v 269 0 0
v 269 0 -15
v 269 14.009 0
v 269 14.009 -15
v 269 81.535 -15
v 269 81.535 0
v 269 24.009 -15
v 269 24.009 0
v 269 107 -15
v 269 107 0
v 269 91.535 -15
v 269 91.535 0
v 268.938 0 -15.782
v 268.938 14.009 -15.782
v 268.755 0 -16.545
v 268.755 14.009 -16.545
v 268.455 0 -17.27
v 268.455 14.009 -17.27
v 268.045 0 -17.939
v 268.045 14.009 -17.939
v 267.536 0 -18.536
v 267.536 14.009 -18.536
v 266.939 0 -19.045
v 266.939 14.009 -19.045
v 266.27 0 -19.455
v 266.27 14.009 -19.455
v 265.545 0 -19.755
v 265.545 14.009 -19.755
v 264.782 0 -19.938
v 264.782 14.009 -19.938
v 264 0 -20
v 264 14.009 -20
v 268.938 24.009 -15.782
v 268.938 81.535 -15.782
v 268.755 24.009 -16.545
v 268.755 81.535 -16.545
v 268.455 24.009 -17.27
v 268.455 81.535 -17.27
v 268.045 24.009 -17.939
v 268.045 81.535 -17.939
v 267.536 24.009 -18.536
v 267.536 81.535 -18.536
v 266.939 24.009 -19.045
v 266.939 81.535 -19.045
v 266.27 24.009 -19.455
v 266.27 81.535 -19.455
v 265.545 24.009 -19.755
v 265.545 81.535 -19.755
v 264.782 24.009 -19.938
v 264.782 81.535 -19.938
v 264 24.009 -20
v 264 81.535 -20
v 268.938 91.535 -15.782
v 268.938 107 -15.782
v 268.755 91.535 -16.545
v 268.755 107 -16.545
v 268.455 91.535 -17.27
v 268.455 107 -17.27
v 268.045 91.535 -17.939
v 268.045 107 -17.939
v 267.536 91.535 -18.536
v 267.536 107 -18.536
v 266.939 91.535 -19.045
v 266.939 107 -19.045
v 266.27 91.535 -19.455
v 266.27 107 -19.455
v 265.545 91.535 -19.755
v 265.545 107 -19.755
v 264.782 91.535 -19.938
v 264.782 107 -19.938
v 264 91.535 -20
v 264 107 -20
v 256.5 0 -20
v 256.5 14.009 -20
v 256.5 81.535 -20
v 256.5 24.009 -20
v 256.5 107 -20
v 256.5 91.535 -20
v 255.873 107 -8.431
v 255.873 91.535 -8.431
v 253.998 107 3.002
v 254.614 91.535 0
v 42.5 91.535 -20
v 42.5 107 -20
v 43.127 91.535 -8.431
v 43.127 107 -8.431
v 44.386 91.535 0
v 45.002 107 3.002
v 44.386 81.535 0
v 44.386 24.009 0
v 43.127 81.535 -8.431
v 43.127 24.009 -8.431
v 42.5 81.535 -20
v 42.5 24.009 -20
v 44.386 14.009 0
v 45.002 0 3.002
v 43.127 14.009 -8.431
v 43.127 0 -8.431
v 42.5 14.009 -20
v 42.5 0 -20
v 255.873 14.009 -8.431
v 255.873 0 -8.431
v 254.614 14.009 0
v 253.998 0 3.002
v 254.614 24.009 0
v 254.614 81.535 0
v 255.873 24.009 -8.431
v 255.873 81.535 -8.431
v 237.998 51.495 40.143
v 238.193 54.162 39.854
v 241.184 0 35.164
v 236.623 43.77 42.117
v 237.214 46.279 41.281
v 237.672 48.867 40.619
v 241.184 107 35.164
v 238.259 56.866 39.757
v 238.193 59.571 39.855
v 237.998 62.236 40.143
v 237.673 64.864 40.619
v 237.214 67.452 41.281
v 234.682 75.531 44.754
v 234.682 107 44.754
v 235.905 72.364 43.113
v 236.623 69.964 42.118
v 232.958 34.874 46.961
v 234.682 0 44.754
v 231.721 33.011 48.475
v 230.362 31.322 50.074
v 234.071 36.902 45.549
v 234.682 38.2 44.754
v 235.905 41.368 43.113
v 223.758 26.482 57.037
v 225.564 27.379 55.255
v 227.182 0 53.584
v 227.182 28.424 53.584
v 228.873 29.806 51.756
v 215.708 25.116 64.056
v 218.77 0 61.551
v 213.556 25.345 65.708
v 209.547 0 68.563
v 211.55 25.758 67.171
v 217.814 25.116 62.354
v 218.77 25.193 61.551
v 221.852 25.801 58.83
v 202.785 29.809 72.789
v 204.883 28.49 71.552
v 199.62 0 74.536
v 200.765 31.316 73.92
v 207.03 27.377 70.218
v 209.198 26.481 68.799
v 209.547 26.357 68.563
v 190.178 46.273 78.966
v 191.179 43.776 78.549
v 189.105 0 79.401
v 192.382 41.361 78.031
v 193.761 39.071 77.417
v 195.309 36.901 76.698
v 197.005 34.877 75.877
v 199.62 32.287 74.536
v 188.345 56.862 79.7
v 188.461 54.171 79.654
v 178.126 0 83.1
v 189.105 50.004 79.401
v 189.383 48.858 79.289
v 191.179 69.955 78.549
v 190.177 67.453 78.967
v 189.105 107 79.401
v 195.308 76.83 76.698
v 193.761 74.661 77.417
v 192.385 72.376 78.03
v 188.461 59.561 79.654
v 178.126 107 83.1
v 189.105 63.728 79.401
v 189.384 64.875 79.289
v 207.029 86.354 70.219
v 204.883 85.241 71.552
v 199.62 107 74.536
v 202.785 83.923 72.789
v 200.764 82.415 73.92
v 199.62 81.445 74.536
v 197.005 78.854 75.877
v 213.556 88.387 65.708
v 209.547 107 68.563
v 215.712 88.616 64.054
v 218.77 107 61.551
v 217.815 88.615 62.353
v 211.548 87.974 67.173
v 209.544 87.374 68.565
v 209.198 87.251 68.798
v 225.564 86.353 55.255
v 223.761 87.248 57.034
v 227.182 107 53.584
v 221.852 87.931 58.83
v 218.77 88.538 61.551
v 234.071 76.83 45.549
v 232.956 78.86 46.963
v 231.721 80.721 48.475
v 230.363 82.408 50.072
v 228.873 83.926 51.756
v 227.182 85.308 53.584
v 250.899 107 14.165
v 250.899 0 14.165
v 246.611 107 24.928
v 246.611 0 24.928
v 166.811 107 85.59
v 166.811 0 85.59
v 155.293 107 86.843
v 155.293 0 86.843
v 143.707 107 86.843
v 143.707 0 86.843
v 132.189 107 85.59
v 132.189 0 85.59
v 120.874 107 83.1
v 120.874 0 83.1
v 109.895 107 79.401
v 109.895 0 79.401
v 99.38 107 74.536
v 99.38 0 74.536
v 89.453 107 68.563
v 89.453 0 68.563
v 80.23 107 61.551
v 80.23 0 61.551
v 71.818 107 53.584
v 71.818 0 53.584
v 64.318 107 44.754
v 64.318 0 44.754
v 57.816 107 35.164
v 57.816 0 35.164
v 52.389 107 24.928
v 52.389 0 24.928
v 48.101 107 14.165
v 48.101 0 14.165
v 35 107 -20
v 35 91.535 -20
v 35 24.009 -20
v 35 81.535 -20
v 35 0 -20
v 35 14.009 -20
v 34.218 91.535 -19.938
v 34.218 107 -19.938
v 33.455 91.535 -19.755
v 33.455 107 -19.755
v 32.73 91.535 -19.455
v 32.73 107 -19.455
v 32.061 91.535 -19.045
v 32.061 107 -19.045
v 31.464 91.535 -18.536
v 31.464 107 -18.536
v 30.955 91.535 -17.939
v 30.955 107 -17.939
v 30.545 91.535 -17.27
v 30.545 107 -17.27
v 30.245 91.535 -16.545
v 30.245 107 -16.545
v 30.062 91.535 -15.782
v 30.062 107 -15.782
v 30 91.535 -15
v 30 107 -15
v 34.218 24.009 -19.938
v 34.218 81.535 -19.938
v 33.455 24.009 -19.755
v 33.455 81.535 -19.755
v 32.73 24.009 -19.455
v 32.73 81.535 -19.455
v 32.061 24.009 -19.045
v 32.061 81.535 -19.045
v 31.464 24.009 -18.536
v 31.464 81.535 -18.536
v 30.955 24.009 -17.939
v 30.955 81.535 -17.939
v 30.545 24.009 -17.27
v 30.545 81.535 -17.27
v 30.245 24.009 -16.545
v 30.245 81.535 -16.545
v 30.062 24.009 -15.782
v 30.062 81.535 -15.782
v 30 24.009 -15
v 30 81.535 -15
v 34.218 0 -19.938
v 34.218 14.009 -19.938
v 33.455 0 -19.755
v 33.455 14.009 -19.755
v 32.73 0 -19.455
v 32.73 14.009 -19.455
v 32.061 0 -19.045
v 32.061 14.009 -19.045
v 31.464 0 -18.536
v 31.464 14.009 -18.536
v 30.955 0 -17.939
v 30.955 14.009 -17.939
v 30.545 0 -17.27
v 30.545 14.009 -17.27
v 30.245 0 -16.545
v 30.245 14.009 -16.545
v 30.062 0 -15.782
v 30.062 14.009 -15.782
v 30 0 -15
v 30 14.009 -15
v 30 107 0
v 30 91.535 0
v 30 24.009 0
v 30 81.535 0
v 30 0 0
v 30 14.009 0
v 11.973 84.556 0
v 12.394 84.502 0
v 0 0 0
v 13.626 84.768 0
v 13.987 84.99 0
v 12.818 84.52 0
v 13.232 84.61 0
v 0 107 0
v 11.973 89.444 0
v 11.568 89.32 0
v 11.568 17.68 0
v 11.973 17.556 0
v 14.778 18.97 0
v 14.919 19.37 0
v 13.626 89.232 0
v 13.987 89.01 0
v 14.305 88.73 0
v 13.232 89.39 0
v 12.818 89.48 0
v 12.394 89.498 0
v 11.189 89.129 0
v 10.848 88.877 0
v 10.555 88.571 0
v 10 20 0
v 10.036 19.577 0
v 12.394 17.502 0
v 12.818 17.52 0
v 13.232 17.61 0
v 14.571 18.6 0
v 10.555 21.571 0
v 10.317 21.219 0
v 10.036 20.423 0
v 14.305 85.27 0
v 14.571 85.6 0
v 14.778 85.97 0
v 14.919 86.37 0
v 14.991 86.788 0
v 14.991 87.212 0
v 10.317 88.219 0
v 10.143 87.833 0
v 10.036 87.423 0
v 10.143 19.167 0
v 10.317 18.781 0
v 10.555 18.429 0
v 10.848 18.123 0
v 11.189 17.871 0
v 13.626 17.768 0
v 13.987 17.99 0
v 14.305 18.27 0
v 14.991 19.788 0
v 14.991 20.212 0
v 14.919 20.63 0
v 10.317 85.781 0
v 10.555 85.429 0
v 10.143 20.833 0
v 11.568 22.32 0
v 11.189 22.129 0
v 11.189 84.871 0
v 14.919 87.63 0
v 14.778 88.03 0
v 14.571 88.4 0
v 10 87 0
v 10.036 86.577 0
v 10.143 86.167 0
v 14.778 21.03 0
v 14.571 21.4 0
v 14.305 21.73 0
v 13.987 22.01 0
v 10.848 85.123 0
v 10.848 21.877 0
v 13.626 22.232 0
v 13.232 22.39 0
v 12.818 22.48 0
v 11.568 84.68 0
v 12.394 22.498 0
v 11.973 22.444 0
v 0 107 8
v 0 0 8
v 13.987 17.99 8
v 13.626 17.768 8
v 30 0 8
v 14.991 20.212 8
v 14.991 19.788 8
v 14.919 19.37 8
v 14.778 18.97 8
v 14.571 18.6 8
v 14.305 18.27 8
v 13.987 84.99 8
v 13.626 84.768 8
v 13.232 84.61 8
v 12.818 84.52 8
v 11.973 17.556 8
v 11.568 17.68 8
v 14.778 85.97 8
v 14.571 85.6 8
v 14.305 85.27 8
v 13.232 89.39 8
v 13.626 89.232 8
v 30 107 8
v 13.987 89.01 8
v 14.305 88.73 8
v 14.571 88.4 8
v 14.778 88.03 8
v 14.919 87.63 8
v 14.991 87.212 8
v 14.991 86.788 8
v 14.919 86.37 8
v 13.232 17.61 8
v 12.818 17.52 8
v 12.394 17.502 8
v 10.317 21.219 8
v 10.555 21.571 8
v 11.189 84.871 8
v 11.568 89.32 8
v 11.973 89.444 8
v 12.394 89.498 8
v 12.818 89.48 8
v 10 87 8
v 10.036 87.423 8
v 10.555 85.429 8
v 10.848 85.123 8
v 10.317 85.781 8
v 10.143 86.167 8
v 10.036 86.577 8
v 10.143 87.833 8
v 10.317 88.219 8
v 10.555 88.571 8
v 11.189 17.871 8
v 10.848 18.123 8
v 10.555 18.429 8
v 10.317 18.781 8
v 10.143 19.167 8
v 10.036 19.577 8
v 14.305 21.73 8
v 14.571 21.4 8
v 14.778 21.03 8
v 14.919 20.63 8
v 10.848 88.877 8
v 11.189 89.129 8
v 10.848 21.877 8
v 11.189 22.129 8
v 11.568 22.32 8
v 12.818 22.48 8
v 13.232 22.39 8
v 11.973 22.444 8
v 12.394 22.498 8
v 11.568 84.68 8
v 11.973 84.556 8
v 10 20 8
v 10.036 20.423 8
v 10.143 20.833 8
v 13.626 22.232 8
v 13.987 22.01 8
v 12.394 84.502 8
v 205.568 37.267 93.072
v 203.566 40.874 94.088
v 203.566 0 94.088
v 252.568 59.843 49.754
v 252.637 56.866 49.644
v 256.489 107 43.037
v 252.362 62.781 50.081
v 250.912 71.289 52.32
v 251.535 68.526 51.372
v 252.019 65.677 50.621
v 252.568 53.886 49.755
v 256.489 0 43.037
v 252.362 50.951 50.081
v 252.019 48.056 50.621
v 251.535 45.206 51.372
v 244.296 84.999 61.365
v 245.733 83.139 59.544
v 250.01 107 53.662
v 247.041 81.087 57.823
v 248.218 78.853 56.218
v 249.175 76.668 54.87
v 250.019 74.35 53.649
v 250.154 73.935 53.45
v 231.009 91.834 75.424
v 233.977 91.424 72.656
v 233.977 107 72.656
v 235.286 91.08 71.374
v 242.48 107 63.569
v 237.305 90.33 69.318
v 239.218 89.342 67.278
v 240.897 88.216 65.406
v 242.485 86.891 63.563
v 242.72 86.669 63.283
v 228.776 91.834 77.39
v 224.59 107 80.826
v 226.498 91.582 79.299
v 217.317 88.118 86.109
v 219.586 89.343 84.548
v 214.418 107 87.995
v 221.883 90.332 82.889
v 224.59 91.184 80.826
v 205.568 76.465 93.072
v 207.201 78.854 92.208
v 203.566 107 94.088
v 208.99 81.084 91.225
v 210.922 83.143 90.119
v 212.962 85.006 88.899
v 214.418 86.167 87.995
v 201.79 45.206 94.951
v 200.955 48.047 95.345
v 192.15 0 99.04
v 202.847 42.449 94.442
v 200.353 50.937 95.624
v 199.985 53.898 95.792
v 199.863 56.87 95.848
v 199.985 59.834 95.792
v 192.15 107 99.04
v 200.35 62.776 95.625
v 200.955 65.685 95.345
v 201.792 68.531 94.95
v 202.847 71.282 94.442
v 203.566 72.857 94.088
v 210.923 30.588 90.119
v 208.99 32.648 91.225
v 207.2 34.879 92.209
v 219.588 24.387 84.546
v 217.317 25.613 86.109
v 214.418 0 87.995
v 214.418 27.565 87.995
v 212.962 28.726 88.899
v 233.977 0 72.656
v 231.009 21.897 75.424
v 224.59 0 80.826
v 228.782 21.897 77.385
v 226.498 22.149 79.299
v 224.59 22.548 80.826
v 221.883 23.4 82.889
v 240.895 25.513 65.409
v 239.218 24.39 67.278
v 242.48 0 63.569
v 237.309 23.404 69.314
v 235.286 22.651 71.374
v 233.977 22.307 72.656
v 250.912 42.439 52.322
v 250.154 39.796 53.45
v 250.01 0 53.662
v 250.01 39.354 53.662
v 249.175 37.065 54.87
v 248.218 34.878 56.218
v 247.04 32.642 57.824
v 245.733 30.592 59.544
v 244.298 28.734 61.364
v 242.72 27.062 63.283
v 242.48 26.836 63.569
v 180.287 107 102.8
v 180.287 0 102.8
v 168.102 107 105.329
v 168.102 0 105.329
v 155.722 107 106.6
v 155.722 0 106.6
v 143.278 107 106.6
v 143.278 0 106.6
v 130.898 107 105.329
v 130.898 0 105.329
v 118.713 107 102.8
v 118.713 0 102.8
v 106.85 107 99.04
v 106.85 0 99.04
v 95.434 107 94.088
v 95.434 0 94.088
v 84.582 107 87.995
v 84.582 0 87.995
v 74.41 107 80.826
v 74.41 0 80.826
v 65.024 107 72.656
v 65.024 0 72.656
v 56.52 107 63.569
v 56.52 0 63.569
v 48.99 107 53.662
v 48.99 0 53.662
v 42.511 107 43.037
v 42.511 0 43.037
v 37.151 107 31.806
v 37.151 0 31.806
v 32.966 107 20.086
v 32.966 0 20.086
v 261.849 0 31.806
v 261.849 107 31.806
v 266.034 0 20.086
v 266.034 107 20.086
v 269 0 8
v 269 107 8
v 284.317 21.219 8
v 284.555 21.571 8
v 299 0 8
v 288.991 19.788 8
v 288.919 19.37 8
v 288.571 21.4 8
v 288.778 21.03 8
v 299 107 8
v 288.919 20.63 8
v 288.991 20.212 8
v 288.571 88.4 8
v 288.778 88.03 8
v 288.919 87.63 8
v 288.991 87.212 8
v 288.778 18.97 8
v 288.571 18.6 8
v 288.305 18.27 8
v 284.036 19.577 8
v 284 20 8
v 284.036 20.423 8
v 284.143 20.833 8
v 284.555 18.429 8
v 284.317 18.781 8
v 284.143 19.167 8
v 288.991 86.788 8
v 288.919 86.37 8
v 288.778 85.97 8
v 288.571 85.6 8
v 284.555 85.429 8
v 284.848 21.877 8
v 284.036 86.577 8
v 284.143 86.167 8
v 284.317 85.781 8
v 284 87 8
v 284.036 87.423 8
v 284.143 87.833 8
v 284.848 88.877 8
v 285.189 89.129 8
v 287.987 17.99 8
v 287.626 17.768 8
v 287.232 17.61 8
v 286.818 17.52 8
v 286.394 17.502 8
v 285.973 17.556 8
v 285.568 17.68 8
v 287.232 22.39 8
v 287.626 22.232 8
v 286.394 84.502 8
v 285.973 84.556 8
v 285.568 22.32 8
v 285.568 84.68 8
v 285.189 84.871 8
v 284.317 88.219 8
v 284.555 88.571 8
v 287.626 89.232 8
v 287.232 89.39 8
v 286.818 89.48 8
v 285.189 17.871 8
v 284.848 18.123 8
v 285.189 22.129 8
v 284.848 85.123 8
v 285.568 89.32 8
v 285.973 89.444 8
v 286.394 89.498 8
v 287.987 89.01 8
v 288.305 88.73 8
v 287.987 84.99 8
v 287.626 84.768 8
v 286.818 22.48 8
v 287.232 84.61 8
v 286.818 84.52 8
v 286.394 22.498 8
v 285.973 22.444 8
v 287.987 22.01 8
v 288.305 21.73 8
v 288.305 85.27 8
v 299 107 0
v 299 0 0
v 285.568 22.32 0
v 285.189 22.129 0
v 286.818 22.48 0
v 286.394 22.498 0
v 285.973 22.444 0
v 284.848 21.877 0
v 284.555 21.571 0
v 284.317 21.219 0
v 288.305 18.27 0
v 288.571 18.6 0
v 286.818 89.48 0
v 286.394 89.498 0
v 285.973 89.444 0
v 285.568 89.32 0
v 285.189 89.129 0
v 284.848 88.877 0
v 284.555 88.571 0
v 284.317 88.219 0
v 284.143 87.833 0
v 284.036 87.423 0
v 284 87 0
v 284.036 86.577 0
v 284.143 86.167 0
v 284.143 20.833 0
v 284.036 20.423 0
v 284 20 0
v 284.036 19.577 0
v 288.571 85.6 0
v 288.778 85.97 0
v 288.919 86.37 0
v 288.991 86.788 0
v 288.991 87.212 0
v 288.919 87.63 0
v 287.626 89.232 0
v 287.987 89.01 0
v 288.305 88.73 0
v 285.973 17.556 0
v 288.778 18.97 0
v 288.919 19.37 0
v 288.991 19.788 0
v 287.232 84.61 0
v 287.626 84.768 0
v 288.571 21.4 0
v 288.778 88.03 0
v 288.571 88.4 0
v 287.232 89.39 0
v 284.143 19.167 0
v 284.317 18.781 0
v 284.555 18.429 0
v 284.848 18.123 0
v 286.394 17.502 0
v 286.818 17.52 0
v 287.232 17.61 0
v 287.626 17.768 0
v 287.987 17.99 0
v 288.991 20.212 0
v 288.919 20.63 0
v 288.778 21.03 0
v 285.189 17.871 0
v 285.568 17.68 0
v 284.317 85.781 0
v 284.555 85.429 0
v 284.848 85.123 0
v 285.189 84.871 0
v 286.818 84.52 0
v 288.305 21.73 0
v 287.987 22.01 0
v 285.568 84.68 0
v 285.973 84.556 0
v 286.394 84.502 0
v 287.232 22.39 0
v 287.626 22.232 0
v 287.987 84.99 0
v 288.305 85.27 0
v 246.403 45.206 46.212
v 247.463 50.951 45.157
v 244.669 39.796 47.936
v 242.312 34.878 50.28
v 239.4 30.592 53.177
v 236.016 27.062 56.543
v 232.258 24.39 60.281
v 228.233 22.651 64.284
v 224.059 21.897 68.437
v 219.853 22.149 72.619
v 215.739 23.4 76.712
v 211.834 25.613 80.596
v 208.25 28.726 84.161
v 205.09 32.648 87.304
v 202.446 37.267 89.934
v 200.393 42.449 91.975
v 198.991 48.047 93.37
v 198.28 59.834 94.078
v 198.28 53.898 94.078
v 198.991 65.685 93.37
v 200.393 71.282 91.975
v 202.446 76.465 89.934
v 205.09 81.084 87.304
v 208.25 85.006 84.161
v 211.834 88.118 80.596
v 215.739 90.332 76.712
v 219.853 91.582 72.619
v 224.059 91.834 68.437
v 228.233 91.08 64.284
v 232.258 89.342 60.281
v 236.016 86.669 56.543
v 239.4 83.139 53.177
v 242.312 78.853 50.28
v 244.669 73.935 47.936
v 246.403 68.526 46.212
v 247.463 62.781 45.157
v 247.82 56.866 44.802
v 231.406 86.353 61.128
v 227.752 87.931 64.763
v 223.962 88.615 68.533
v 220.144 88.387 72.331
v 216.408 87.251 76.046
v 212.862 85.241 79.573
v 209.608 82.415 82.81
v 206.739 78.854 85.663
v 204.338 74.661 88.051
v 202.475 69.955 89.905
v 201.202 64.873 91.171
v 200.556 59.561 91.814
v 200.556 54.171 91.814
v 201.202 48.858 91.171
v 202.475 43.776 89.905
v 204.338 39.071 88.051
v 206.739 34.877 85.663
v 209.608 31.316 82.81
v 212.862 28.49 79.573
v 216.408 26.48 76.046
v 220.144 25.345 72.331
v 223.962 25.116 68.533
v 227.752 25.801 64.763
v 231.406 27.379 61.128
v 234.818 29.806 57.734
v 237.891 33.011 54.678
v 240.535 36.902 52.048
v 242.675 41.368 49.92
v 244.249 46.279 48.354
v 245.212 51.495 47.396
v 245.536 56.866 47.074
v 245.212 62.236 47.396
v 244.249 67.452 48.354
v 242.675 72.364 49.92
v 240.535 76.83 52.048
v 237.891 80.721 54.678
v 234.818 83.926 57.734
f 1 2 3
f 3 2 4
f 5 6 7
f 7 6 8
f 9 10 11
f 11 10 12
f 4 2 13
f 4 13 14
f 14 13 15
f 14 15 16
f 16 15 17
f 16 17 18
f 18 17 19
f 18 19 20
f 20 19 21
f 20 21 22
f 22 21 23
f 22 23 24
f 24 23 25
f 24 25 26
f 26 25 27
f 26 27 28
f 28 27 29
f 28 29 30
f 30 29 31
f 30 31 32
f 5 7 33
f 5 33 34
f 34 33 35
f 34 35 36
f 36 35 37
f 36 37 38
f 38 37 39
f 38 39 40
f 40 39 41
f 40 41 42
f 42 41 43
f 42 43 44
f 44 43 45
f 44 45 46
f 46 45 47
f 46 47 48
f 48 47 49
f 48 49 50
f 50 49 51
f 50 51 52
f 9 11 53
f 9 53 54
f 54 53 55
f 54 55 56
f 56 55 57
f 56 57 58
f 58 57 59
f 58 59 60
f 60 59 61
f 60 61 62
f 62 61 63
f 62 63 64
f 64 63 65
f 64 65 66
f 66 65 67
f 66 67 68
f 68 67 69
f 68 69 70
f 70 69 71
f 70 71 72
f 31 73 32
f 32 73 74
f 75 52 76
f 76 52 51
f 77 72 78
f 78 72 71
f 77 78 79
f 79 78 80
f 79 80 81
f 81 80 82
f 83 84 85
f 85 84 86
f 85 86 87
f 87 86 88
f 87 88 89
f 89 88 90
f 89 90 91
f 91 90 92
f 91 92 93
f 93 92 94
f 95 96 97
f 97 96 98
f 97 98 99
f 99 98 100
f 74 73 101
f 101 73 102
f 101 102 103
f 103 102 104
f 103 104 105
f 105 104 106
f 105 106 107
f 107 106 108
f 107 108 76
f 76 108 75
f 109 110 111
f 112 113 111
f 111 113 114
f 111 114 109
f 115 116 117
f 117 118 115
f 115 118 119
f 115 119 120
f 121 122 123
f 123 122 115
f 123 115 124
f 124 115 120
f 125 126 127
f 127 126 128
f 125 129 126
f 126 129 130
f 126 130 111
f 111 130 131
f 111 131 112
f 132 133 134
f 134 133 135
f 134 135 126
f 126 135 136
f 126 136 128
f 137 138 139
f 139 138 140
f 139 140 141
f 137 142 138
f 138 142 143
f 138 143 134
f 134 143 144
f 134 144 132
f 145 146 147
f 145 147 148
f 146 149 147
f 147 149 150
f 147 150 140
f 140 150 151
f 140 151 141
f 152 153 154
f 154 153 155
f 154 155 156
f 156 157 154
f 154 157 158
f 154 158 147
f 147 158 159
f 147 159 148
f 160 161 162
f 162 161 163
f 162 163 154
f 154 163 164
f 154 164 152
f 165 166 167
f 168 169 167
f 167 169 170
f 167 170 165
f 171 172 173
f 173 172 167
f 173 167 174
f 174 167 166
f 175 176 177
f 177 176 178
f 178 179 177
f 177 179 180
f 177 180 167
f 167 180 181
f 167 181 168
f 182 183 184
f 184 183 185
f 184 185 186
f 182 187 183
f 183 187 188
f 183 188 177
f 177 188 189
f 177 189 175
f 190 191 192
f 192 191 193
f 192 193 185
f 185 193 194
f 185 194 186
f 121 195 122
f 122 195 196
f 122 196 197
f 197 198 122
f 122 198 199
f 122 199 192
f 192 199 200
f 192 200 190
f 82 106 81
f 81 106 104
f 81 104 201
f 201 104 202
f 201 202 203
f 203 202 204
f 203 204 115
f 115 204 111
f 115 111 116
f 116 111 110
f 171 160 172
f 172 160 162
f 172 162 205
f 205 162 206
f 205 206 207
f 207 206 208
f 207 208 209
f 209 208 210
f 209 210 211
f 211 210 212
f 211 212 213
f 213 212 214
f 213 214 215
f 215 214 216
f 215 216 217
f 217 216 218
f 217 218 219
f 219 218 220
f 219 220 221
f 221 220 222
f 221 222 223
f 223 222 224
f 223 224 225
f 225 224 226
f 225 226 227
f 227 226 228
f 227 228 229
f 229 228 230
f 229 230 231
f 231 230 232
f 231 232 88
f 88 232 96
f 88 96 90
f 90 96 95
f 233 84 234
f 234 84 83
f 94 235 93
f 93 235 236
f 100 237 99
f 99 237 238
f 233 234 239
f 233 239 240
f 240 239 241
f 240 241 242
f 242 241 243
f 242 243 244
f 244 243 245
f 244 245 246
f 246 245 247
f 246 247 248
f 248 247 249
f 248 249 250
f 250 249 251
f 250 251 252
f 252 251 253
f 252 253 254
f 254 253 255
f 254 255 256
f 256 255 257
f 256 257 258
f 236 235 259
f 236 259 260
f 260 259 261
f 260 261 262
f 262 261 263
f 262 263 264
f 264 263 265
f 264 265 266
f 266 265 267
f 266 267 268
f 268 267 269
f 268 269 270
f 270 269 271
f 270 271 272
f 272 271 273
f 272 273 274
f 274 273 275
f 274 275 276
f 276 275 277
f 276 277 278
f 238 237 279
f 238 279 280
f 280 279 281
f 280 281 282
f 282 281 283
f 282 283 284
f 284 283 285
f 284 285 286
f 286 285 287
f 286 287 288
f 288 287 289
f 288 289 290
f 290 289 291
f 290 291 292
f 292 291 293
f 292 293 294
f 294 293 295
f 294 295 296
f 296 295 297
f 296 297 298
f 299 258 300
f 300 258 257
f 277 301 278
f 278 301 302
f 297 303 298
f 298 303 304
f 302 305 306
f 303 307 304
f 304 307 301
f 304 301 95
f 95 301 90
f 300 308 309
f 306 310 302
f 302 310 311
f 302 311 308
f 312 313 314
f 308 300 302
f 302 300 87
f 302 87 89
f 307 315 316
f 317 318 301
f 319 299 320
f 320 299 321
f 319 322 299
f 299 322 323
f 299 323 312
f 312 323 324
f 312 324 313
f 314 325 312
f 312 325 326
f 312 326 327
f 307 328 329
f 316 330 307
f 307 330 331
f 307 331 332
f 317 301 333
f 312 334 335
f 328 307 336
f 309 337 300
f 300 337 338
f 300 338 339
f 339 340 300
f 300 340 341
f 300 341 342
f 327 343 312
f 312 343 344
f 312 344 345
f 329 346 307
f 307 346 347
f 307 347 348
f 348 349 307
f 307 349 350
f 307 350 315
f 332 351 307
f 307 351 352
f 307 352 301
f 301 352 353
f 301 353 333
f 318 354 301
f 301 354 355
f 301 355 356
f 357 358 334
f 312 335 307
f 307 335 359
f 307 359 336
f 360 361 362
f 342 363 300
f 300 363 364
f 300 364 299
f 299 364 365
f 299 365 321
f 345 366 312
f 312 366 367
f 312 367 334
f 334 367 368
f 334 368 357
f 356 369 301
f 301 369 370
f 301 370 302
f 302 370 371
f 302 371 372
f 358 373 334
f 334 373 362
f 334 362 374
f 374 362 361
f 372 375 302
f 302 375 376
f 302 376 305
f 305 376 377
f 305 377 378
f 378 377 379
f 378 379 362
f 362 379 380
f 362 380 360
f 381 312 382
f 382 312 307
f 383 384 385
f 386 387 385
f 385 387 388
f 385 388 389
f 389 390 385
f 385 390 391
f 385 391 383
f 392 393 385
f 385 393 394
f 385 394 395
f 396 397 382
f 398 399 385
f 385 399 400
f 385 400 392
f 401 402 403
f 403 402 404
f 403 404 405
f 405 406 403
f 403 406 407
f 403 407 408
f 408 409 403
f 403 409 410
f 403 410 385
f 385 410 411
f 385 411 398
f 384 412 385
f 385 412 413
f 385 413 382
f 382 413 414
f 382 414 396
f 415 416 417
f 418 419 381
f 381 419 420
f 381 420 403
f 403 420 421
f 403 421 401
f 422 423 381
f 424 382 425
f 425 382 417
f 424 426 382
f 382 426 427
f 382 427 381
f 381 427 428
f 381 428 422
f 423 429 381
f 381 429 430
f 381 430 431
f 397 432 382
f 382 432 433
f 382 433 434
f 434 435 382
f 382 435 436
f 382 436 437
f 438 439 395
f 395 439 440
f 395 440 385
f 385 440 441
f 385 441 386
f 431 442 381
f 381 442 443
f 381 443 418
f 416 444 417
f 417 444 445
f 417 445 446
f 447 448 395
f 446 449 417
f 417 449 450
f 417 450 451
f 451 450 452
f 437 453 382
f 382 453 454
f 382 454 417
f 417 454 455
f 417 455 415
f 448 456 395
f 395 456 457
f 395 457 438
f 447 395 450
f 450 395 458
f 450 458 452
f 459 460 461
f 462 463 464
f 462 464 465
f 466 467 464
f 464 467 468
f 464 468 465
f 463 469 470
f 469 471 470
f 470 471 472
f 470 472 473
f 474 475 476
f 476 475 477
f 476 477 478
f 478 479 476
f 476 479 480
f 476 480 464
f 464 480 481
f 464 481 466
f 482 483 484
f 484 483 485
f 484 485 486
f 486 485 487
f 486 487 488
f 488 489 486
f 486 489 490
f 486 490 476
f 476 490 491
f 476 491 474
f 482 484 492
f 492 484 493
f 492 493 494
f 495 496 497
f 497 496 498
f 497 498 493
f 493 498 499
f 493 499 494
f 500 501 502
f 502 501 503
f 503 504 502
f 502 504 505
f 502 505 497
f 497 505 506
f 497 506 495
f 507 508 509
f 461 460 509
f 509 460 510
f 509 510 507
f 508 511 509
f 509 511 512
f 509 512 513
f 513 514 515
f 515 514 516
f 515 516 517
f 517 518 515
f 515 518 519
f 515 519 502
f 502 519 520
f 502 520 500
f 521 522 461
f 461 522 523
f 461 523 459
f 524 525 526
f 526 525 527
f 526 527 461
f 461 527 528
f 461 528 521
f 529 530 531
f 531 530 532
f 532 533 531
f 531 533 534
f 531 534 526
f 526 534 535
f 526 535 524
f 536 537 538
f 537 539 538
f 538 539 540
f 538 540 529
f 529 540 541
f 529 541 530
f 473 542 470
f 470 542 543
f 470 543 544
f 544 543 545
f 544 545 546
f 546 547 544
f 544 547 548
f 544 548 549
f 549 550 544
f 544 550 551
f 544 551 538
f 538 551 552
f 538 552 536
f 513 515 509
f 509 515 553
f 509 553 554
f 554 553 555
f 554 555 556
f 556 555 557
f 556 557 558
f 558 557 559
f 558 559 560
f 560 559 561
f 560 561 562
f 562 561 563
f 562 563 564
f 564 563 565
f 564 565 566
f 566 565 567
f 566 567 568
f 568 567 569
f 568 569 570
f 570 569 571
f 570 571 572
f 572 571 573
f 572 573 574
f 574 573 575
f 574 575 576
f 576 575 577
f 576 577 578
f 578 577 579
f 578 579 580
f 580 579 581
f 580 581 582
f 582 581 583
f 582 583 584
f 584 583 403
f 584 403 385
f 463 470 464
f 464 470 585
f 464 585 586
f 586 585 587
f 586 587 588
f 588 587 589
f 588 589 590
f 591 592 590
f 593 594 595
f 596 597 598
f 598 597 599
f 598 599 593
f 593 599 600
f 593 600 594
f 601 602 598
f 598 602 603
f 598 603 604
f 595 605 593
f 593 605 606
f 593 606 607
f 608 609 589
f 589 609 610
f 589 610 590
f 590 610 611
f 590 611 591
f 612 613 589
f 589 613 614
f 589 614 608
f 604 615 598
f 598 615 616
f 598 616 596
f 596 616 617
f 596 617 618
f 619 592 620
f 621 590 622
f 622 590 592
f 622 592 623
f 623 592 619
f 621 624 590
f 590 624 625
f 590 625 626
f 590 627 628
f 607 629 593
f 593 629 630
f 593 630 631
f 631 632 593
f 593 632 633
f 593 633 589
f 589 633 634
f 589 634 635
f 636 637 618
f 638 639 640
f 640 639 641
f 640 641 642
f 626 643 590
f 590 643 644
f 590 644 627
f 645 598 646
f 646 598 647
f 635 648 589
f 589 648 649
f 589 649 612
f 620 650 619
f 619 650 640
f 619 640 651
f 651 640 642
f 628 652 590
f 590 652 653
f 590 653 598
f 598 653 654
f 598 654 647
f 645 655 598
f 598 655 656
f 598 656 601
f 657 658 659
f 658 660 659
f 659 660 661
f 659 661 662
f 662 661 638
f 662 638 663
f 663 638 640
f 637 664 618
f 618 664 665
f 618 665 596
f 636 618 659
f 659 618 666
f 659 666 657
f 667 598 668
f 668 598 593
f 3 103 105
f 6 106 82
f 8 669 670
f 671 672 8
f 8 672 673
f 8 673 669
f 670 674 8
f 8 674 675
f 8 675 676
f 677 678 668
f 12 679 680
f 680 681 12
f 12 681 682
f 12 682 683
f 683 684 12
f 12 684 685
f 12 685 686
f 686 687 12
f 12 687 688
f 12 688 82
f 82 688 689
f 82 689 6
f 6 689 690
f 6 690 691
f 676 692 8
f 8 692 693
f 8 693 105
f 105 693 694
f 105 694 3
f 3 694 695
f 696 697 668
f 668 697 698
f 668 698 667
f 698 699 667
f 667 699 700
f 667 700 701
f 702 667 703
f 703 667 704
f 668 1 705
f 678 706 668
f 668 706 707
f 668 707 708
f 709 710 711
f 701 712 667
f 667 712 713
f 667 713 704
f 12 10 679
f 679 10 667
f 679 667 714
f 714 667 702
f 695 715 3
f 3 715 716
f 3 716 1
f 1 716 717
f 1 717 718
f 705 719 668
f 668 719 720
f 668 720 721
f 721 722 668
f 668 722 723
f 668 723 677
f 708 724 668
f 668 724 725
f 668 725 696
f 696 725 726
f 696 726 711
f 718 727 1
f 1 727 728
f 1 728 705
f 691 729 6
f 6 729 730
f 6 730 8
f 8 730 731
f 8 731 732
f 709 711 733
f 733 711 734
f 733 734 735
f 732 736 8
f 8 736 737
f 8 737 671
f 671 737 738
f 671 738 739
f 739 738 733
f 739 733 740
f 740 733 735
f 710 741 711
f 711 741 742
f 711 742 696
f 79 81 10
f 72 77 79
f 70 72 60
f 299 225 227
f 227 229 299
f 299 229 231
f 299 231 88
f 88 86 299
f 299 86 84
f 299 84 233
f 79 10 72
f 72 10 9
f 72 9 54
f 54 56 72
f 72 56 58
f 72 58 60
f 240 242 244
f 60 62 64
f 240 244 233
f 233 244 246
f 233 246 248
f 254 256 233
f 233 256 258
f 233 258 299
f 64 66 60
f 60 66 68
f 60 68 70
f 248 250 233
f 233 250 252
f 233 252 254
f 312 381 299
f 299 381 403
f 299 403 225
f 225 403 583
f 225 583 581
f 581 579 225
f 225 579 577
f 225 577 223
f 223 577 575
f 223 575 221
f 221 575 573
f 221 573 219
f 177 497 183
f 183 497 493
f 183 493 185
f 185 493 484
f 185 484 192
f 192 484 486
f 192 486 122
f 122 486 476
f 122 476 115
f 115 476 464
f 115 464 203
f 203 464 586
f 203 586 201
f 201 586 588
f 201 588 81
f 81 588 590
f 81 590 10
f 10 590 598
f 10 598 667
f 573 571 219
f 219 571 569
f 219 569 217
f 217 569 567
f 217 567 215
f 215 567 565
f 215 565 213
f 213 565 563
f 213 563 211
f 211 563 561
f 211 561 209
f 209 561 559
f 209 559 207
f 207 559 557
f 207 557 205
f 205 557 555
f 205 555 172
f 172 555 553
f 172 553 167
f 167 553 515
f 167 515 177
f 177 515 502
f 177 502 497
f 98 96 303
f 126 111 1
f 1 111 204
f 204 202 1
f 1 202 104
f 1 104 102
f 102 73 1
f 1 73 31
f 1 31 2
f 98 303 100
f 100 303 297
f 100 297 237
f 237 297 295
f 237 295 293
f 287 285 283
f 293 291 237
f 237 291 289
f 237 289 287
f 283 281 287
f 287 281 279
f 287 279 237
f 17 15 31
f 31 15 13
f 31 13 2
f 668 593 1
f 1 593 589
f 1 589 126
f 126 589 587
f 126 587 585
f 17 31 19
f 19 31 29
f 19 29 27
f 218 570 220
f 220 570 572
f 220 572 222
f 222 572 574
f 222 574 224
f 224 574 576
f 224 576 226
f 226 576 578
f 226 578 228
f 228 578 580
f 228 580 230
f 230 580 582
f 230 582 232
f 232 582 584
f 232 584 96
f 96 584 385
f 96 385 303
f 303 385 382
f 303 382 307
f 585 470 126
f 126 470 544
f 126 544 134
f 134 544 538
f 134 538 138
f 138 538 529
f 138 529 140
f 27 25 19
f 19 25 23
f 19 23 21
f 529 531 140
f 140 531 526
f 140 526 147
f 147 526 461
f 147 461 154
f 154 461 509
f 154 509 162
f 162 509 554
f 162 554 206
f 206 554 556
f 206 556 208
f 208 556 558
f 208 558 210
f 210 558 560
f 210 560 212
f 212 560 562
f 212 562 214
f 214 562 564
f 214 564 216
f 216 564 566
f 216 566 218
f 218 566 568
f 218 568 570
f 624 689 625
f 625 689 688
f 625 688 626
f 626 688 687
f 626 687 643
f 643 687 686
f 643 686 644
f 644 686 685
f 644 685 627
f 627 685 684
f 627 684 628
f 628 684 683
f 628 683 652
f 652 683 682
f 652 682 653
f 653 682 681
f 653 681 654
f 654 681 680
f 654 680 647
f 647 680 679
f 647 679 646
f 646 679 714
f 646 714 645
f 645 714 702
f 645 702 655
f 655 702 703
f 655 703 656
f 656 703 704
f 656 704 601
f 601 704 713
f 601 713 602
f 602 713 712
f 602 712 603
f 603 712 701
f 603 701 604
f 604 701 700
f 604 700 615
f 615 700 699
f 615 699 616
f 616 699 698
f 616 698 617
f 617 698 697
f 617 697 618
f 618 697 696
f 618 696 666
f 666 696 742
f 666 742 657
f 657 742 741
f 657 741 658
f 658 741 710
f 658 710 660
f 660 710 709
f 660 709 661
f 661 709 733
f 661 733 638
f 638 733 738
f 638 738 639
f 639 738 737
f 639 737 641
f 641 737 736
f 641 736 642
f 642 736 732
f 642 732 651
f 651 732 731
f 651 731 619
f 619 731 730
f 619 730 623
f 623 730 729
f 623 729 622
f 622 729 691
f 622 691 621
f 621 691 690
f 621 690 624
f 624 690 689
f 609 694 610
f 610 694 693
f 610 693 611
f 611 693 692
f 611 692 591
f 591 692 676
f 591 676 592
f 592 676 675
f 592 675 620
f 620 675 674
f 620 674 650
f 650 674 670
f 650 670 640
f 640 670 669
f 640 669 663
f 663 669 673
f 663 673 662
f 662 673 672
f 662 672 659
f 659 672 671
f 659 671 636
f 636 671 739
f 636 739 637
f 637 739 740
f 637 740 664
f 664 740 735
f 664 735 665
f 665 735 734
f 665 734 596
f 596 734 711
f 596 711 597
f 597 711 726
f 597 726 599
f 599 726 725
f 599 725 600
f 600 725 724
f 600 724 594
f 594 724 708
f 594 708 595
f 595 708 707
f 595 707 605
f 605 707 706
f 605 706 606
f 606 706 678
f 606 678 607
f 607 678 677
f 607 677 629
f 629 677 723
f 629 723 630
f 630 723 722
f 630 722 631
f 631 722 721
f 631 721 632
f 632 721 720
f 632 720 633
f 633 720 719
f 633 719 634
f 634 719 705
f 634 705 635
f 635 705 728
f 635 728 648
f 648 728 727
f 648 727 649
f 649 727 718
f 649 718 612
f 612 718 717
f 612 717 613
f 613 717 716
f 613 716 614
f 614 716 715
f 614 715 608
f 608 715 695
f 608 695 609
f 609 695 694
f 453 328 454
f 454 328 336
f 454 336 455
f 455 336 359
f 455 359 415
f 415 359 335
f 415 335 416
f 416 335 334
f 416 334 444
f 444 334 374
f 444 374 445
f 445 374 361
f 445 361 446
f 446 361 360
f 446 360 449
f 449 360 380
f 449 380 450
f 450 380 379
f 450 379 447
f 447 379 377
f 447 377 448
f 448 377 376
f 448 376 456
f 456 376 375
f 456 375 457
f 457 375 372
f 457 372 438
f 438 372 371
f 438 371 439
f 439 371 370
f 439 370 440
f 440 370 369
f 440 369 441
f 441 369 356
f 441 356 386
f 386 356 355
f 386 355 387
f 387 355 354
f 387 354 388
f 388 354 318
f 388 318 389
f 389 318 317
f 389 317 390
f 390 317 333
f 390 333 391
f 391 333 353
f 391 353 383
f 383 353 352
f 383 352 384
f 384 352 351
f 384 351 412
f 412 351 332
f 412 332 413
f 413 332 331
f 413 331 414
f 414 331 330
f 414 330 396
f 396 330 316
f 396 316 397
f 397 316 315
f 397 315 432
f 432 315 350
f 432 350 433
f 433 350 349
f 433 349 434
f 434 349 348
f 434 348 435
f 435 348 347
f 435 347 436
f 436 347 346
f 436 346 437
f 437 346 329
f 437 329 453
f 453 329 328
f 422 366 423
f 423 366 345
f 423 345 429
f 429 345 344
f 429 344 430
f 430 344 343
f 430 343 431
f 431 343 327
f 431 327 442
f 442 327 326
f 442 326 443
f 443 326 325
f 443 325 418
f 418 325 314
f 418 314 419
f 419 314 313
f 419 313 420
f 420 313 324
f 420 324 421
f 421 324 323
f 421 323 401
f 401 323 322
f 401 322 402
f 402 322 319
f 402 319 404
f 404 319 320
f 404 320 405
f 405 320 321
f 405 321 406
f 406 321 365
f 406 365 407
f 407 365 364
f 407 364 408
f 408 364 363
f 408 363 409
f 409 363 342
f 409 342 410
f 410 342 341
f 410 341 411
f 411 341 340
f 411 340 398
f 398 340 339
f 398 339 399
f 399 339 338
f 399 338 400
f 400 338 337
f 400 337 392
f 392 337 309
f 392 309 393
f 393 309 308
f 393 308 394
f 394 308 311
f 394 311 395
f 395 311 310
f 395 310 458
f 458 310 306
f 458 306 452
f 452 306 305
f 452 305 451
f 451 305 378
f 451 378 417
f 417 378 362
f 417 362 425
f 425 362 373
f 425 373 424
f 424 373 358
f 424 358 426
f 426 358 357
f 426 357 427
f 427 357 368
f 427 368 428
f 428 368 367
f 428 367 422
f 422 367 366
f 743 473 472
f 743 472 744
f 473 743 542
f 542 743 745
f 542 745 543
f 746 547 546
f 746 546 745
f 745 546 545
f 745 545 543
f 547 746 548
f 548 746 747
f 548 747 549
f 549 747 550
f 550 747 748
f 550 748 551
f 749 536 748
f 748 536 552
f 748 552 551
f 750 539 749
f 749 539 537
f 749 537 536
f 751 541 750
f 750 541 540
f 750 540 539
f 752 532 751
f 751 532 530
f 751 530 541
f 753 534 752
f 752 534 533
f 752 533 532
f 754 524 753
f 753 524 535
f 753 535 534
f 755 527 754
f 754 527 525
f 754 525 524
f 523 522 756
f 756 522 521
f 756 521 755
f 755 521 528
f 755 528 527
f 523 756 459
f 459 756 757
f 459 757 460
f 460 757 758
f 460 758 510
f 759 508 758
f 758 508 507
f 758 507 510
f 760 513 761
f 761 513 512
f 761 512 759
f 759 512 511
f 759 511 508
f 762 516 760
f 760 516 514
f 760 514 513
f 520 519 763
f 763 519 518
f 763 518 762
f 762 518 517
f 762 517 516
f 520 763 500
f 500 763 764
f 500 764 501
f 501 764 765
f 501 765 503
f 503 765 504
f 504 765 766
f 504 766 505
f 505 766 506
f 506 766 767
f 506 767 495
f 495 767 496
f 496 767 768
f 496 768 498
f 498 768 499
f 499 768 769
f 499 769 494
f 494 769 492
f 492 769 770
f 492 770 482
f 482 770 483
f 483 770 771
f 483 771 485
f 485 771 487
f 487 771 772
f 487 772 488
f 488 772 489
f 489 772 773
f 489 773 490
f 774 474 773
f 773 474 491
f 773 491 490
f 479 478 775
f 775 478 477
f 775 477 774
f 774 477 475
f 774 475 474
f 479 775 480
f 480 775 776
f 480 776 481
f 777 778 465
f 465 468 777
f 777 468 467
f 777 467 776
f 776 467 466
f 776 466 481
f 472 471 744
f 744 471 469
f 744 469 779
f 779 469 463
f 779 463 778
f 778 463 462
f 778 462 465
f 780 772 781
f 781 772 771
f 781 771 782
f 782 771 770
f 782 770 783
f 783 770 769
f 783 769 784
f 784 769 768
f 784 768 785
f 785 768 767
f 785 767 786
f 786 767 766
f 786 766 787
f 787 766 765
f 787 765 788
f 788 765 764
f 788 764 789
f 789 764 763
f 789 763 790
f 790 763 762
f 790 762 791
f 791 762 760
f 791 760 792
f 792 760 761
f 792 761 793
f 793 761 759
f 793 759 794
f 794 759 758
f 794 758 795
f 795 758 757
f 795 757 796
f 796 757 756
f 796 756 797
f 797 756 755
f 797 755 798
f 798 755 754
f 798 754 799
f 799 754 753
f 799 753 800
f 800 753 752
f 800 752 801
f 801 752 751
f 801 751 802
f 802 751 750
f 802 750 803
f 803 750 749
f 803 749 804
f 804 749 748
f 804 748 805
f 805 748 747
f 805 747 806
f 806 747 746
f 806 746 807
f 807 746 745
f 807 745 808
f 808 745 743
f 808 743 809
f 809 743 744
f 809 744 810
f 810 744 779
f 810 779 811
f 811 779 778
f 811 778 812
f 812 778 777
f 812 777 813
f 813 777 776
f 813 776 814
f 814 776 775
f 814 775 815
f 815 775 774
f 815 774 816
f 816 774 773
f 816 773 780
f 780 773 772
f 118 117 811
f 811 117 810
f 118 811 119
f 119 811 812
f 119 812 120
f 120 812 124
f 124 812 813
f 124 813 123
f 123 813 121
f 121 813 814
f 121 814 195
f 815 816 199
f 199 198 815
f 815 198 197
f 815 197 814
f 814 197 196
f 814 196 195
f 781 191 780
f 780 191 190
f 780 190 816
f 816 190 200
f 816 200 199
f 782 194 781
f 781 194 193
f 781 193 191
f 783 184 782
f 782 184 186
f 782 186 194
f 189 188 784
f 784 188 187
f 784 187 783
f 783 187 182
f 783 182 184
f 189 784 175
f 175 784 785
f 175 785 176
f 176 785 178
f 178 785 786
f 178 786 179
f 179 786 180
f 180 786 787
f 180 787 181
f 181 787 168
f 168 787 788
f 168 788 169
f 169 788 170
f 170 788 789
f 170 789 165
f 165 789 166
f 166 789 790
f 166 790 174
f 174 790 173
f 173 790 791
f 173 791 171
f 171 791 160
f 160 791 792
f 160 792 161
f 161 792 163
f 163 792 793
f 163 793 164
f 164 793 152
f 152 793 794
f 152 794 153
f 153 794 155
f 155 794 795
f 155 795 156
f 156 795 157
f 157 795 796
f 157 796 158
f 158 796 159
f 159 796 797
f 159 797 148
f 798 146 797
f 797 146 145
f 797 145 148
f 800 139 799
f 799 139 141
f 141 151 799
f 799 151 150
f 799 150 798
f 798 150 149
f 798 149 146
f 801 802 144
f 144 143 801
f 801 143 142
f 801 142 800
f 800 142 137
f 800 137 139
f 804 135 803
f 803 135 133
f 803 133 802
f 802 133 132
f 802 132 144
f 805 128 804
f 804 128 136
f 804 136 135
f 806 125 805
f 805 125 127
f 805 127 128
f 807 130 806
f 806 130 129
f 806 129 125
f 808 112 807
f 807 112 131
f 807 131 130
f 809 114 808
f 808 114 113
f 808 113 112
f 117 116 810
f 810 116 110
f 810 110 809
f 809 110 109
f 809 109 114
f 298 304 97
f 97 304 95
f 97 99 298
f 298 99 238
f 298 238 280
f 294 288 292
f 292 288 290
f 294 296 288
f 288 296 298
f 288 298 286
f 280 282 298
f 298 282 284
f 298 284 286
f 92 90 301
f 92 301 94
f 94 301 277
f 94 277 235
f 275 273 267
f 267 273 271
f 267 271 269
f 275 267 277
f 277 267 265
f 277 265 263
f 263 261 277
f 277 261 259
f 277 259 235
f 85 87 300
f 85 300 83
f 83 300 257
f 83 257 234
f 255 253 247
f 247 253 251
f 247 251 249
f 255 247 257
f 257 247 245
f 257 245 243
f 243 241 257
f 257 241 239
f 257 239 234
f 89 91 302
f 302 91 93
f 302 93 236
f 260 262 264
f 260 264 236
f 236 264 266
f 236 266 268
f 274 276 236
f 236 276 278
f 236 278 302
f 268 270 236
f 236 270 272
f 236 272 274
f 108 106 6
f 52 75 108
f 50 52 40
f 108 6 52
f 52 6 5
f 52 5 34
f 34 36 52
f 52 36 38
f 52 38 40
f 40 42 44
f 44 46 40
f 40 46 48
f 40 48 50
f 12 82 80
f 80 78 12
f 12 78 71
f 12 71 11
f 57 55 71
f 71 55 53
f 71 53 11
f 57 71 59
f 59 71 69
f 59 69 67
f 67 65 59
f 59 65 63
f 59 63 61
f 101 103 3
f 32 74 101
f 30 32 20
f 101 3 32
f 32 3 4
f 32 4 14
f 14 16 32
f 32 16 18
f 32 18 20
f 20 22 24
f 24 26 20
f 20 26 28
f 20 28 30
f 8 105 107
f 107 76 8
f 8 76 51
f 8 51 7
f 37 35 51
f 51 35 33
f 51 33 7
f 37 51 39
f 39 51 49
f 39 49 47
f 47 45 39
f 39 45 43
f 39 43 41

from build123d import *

# Parameters (mm, degrees)
BOSS_EXTRUDE1_DEPTH = 107
SKETCH2_R           = 2.5
CUT_EXTRUDE1_DEPTH  = 336.0337743
SKETCH3_R           = 35
CUT_EXTRUDE2_DEPTH  = 10
SKETCH4_R           = 31.778321021
CUT_EXTRUDE3_DEPTH  = 25
CUT_EXTRUDE4_REACH  = 337.034
SKETCH5_W           = 15.542799326
SKETCH5_H           = 10
SKETCH5_W_2         = 18.63674205


with BuildPart() as part:
    # Sketch1 → Boss-Extrude1 (new body)
    with BuildSketch(Plane(origin=(0, 0, 0), x_dir=(1, 0, 0), z_dir=(0, 1, 0))):
        with BuildLine():
            Line((0, 0), (0, -8))
            Line((0, -8), (30, -8))
            ThreePointArc((30, -8), (149.5, -106.759683035), (269, -8))
            Line((269, -8), (299, -8))
            Line((299, -8), (299, 0))
            Line((299, 0), (269, 0))
            Line((269, 0), (269, 15))
            ThreePointArc((269, 15), (267.535533906, 18.535533906), (264, 20))
            Line((264, 20), (256.5, 20))
            ThreePointArc((256.5, 20), (149.5, -87.000008561), (42.5, 20))
            Line((42.5, 20), (35, 20))
            ThreePointArc((35, 20), (31.464466094, 18.535533906), (30, 15))
            Line((30, 15), (30, 0))
            Line((30, 0), (0, 0))
        make_face()
    extrude(amount=BOSS_EXTRUDE1_DEPTH)

    # Sketch2 → Cut-Extrude1 (cut, through all)
    with BuildSketch(Plane(origin=(0, 0, 0), x_dir=(-1, 0, 0), z_dir=(0, 0, -1))):
        with Locations((-286.5, 87)):
            Circle(SKETCH2_R)
        with Locations((-286.5, 20)):
            Circle(SKETCH2_R)
        with Locations((-12.5, 87)):
            Circle(SKETCH2_R)
        with Locations((-12.5, 20)):
            Circle(SKETCH2_R)
    extrude(amount=-CUT_EXTRUDE1_DEPTH, mode=Mode.SUBTRACT)

    # Sketch3 → Cut-Extrude2 (cut)
    with BuildSketch(Plane(origin=(152.698962186, 0, 153.519285181), x_dir=(0.7089984938103423, 0, -0.7052099940972661), z_dir=(0.7052099940972661, 0, 0.7089984938103423))):
        with Locations((109.109605527, 56.865799068)):
            Circle(SKETCH3_R)
    extrude(amount=-CUT_EXTRUDE2_DEPTH, mode=Mode.SUBTRACT)

    # Sketch4 → Cut-Extrude3 (cut)
    with BuildSketch(Plane(origin=(145.646862245, 0, 146.429300243), x_dir=(0.7089984938103423, 0, -0.7052099940972661), z_dir=(0.7052099940972661, 0, 0.7089984938103423))):
        with Locations((109.109605527, 56.865799068)):
            Circle(SKETCH4_R)
    extrude(amount=-CUT_EXTRUDE3_DEPTH, mode=Mode.SUBTRACT)

    # Cut-Extrude4: up to this face of the body (flat: up to its plane)
    cut_extrude4_end = Plane(part.part.faces().sort_by_distance((260.25, 53.5, -20))[0])
    # Sketch5 → Cut-Extrude4 (cut, up to the picked face)
    with BuildSketch(Plane(origin=(0, 0, 0), x_dir=(-1, 0, 0), z_dir=(0, 0, -1)), mode=Mode.PRIVATE) as cut_extrude4_sk1:
        with Locations((-261.228600337, 86.535453814)):
            Rectangle(SKETCH5_W, SKETCH5_H)
    cut_extrude4_tool1 = split(extrude(cut_extrude4_sk1.sketch, amount=CUT_EXTRUDE4_REACH, mode=Mode.PRIVATE), bisect_by=cut_extrude4_end, keep=Keep.BOTH, mode=Mode.PRIVATE)
    # Sketch5 → Cut-Extrude4 (cut, up to the picked face)
    with BuildSketch(Plane(origin=(0, 0, 0), x_dir=(-1, 0, 0), z_dir=(0, 0, -1)), mode=Mode.PRIVATE) as cut_extrude4_sk2:
        with Locations((-259.681628975, 19.008712967)):
            Rectangle(SKETCH5_W_2, SKETCH5_H)
    cut_extrude4_tool2 = split(extrude(cut_extrude4_sk2.sketch, amount=CUT_EXTRUDE4_REACH, mode=Mode.PRIVATE), bisect_by=cut_extrude4_end, keep=Keep.BOTH, mode=Mode.PRIVATE)
    # Sketch5 → Cut-Extrude4 (cut, up to the picked face)
    with BuildSketch(Plane(origin=(0, 0, 0), x_dir=(-1, 0, 0), z_dir=(0, 0, -1)), mode=Mode.PRIVATE) as cut_extrude4_sk3:
        with Locations((-39.318371025, 19.008712967)):
            Rectangle(SKETCH5_W_2, SKETCH5_H)
    cut_extrude4_tool3 = split(extrude(cut_extrude4_sk3.sketch, amount=CUT_EXTRUDE4_REACH, mode=Mode.PRIVATE), bisect_by=cut_extrude4_end, keep=Keep.BOTH, mode=Mode.PRIVATE)
    # Sketch5 → Cut-Extrude4 (cut, up to the picked face)
    with BuildSketch(Plane(origin=(0, 0, 0), x_dir=(-1, 0, 0), z_dir=(0, 0, -1)), mode=Mode.PRIVATE) as cut_extrude4_sk4:
        with Locations((-37.771399663, 86.535453814)):
            Rectangle(SKETCH5_W, SKETCH5_H)
    cut_extrude4_tool4 = split(extrude(cut_extrude4_sk4.sketch, amount=CUT_EXTRUDE4_REACH, mode=Mode.PRIVATE), bisect_by=cut_extrude4_end, keep=Keep.BOTH, mode=Mode.PRIVATE)
    add(cut_extrude4_tool1.solids().sort_by(Axis((261.2286, 86.535454, 0), (0, 0, -1)))[0], mode=Mode.SUBTRACT)
    add(cut_extrude4_tool2.solids().sort_by(Axis((259.681629, 19.008713, 0), (0, 0, -1)))[0], mode=Mode.SUBTRACT)
    add(cut_extrude4_tool3.solids().sort_by(Axis((39.318371, 19.008713, 0), (0, 0, -1)))[0], mode=Mode.SUBTRACT)
    add(cut_extrude4_tool4.solids().sort_by(Axis((37.7714, 86.535454, 0), (0, 0, -1)))[0], mode=Mode.SUBTRACT)


solid = part.part
